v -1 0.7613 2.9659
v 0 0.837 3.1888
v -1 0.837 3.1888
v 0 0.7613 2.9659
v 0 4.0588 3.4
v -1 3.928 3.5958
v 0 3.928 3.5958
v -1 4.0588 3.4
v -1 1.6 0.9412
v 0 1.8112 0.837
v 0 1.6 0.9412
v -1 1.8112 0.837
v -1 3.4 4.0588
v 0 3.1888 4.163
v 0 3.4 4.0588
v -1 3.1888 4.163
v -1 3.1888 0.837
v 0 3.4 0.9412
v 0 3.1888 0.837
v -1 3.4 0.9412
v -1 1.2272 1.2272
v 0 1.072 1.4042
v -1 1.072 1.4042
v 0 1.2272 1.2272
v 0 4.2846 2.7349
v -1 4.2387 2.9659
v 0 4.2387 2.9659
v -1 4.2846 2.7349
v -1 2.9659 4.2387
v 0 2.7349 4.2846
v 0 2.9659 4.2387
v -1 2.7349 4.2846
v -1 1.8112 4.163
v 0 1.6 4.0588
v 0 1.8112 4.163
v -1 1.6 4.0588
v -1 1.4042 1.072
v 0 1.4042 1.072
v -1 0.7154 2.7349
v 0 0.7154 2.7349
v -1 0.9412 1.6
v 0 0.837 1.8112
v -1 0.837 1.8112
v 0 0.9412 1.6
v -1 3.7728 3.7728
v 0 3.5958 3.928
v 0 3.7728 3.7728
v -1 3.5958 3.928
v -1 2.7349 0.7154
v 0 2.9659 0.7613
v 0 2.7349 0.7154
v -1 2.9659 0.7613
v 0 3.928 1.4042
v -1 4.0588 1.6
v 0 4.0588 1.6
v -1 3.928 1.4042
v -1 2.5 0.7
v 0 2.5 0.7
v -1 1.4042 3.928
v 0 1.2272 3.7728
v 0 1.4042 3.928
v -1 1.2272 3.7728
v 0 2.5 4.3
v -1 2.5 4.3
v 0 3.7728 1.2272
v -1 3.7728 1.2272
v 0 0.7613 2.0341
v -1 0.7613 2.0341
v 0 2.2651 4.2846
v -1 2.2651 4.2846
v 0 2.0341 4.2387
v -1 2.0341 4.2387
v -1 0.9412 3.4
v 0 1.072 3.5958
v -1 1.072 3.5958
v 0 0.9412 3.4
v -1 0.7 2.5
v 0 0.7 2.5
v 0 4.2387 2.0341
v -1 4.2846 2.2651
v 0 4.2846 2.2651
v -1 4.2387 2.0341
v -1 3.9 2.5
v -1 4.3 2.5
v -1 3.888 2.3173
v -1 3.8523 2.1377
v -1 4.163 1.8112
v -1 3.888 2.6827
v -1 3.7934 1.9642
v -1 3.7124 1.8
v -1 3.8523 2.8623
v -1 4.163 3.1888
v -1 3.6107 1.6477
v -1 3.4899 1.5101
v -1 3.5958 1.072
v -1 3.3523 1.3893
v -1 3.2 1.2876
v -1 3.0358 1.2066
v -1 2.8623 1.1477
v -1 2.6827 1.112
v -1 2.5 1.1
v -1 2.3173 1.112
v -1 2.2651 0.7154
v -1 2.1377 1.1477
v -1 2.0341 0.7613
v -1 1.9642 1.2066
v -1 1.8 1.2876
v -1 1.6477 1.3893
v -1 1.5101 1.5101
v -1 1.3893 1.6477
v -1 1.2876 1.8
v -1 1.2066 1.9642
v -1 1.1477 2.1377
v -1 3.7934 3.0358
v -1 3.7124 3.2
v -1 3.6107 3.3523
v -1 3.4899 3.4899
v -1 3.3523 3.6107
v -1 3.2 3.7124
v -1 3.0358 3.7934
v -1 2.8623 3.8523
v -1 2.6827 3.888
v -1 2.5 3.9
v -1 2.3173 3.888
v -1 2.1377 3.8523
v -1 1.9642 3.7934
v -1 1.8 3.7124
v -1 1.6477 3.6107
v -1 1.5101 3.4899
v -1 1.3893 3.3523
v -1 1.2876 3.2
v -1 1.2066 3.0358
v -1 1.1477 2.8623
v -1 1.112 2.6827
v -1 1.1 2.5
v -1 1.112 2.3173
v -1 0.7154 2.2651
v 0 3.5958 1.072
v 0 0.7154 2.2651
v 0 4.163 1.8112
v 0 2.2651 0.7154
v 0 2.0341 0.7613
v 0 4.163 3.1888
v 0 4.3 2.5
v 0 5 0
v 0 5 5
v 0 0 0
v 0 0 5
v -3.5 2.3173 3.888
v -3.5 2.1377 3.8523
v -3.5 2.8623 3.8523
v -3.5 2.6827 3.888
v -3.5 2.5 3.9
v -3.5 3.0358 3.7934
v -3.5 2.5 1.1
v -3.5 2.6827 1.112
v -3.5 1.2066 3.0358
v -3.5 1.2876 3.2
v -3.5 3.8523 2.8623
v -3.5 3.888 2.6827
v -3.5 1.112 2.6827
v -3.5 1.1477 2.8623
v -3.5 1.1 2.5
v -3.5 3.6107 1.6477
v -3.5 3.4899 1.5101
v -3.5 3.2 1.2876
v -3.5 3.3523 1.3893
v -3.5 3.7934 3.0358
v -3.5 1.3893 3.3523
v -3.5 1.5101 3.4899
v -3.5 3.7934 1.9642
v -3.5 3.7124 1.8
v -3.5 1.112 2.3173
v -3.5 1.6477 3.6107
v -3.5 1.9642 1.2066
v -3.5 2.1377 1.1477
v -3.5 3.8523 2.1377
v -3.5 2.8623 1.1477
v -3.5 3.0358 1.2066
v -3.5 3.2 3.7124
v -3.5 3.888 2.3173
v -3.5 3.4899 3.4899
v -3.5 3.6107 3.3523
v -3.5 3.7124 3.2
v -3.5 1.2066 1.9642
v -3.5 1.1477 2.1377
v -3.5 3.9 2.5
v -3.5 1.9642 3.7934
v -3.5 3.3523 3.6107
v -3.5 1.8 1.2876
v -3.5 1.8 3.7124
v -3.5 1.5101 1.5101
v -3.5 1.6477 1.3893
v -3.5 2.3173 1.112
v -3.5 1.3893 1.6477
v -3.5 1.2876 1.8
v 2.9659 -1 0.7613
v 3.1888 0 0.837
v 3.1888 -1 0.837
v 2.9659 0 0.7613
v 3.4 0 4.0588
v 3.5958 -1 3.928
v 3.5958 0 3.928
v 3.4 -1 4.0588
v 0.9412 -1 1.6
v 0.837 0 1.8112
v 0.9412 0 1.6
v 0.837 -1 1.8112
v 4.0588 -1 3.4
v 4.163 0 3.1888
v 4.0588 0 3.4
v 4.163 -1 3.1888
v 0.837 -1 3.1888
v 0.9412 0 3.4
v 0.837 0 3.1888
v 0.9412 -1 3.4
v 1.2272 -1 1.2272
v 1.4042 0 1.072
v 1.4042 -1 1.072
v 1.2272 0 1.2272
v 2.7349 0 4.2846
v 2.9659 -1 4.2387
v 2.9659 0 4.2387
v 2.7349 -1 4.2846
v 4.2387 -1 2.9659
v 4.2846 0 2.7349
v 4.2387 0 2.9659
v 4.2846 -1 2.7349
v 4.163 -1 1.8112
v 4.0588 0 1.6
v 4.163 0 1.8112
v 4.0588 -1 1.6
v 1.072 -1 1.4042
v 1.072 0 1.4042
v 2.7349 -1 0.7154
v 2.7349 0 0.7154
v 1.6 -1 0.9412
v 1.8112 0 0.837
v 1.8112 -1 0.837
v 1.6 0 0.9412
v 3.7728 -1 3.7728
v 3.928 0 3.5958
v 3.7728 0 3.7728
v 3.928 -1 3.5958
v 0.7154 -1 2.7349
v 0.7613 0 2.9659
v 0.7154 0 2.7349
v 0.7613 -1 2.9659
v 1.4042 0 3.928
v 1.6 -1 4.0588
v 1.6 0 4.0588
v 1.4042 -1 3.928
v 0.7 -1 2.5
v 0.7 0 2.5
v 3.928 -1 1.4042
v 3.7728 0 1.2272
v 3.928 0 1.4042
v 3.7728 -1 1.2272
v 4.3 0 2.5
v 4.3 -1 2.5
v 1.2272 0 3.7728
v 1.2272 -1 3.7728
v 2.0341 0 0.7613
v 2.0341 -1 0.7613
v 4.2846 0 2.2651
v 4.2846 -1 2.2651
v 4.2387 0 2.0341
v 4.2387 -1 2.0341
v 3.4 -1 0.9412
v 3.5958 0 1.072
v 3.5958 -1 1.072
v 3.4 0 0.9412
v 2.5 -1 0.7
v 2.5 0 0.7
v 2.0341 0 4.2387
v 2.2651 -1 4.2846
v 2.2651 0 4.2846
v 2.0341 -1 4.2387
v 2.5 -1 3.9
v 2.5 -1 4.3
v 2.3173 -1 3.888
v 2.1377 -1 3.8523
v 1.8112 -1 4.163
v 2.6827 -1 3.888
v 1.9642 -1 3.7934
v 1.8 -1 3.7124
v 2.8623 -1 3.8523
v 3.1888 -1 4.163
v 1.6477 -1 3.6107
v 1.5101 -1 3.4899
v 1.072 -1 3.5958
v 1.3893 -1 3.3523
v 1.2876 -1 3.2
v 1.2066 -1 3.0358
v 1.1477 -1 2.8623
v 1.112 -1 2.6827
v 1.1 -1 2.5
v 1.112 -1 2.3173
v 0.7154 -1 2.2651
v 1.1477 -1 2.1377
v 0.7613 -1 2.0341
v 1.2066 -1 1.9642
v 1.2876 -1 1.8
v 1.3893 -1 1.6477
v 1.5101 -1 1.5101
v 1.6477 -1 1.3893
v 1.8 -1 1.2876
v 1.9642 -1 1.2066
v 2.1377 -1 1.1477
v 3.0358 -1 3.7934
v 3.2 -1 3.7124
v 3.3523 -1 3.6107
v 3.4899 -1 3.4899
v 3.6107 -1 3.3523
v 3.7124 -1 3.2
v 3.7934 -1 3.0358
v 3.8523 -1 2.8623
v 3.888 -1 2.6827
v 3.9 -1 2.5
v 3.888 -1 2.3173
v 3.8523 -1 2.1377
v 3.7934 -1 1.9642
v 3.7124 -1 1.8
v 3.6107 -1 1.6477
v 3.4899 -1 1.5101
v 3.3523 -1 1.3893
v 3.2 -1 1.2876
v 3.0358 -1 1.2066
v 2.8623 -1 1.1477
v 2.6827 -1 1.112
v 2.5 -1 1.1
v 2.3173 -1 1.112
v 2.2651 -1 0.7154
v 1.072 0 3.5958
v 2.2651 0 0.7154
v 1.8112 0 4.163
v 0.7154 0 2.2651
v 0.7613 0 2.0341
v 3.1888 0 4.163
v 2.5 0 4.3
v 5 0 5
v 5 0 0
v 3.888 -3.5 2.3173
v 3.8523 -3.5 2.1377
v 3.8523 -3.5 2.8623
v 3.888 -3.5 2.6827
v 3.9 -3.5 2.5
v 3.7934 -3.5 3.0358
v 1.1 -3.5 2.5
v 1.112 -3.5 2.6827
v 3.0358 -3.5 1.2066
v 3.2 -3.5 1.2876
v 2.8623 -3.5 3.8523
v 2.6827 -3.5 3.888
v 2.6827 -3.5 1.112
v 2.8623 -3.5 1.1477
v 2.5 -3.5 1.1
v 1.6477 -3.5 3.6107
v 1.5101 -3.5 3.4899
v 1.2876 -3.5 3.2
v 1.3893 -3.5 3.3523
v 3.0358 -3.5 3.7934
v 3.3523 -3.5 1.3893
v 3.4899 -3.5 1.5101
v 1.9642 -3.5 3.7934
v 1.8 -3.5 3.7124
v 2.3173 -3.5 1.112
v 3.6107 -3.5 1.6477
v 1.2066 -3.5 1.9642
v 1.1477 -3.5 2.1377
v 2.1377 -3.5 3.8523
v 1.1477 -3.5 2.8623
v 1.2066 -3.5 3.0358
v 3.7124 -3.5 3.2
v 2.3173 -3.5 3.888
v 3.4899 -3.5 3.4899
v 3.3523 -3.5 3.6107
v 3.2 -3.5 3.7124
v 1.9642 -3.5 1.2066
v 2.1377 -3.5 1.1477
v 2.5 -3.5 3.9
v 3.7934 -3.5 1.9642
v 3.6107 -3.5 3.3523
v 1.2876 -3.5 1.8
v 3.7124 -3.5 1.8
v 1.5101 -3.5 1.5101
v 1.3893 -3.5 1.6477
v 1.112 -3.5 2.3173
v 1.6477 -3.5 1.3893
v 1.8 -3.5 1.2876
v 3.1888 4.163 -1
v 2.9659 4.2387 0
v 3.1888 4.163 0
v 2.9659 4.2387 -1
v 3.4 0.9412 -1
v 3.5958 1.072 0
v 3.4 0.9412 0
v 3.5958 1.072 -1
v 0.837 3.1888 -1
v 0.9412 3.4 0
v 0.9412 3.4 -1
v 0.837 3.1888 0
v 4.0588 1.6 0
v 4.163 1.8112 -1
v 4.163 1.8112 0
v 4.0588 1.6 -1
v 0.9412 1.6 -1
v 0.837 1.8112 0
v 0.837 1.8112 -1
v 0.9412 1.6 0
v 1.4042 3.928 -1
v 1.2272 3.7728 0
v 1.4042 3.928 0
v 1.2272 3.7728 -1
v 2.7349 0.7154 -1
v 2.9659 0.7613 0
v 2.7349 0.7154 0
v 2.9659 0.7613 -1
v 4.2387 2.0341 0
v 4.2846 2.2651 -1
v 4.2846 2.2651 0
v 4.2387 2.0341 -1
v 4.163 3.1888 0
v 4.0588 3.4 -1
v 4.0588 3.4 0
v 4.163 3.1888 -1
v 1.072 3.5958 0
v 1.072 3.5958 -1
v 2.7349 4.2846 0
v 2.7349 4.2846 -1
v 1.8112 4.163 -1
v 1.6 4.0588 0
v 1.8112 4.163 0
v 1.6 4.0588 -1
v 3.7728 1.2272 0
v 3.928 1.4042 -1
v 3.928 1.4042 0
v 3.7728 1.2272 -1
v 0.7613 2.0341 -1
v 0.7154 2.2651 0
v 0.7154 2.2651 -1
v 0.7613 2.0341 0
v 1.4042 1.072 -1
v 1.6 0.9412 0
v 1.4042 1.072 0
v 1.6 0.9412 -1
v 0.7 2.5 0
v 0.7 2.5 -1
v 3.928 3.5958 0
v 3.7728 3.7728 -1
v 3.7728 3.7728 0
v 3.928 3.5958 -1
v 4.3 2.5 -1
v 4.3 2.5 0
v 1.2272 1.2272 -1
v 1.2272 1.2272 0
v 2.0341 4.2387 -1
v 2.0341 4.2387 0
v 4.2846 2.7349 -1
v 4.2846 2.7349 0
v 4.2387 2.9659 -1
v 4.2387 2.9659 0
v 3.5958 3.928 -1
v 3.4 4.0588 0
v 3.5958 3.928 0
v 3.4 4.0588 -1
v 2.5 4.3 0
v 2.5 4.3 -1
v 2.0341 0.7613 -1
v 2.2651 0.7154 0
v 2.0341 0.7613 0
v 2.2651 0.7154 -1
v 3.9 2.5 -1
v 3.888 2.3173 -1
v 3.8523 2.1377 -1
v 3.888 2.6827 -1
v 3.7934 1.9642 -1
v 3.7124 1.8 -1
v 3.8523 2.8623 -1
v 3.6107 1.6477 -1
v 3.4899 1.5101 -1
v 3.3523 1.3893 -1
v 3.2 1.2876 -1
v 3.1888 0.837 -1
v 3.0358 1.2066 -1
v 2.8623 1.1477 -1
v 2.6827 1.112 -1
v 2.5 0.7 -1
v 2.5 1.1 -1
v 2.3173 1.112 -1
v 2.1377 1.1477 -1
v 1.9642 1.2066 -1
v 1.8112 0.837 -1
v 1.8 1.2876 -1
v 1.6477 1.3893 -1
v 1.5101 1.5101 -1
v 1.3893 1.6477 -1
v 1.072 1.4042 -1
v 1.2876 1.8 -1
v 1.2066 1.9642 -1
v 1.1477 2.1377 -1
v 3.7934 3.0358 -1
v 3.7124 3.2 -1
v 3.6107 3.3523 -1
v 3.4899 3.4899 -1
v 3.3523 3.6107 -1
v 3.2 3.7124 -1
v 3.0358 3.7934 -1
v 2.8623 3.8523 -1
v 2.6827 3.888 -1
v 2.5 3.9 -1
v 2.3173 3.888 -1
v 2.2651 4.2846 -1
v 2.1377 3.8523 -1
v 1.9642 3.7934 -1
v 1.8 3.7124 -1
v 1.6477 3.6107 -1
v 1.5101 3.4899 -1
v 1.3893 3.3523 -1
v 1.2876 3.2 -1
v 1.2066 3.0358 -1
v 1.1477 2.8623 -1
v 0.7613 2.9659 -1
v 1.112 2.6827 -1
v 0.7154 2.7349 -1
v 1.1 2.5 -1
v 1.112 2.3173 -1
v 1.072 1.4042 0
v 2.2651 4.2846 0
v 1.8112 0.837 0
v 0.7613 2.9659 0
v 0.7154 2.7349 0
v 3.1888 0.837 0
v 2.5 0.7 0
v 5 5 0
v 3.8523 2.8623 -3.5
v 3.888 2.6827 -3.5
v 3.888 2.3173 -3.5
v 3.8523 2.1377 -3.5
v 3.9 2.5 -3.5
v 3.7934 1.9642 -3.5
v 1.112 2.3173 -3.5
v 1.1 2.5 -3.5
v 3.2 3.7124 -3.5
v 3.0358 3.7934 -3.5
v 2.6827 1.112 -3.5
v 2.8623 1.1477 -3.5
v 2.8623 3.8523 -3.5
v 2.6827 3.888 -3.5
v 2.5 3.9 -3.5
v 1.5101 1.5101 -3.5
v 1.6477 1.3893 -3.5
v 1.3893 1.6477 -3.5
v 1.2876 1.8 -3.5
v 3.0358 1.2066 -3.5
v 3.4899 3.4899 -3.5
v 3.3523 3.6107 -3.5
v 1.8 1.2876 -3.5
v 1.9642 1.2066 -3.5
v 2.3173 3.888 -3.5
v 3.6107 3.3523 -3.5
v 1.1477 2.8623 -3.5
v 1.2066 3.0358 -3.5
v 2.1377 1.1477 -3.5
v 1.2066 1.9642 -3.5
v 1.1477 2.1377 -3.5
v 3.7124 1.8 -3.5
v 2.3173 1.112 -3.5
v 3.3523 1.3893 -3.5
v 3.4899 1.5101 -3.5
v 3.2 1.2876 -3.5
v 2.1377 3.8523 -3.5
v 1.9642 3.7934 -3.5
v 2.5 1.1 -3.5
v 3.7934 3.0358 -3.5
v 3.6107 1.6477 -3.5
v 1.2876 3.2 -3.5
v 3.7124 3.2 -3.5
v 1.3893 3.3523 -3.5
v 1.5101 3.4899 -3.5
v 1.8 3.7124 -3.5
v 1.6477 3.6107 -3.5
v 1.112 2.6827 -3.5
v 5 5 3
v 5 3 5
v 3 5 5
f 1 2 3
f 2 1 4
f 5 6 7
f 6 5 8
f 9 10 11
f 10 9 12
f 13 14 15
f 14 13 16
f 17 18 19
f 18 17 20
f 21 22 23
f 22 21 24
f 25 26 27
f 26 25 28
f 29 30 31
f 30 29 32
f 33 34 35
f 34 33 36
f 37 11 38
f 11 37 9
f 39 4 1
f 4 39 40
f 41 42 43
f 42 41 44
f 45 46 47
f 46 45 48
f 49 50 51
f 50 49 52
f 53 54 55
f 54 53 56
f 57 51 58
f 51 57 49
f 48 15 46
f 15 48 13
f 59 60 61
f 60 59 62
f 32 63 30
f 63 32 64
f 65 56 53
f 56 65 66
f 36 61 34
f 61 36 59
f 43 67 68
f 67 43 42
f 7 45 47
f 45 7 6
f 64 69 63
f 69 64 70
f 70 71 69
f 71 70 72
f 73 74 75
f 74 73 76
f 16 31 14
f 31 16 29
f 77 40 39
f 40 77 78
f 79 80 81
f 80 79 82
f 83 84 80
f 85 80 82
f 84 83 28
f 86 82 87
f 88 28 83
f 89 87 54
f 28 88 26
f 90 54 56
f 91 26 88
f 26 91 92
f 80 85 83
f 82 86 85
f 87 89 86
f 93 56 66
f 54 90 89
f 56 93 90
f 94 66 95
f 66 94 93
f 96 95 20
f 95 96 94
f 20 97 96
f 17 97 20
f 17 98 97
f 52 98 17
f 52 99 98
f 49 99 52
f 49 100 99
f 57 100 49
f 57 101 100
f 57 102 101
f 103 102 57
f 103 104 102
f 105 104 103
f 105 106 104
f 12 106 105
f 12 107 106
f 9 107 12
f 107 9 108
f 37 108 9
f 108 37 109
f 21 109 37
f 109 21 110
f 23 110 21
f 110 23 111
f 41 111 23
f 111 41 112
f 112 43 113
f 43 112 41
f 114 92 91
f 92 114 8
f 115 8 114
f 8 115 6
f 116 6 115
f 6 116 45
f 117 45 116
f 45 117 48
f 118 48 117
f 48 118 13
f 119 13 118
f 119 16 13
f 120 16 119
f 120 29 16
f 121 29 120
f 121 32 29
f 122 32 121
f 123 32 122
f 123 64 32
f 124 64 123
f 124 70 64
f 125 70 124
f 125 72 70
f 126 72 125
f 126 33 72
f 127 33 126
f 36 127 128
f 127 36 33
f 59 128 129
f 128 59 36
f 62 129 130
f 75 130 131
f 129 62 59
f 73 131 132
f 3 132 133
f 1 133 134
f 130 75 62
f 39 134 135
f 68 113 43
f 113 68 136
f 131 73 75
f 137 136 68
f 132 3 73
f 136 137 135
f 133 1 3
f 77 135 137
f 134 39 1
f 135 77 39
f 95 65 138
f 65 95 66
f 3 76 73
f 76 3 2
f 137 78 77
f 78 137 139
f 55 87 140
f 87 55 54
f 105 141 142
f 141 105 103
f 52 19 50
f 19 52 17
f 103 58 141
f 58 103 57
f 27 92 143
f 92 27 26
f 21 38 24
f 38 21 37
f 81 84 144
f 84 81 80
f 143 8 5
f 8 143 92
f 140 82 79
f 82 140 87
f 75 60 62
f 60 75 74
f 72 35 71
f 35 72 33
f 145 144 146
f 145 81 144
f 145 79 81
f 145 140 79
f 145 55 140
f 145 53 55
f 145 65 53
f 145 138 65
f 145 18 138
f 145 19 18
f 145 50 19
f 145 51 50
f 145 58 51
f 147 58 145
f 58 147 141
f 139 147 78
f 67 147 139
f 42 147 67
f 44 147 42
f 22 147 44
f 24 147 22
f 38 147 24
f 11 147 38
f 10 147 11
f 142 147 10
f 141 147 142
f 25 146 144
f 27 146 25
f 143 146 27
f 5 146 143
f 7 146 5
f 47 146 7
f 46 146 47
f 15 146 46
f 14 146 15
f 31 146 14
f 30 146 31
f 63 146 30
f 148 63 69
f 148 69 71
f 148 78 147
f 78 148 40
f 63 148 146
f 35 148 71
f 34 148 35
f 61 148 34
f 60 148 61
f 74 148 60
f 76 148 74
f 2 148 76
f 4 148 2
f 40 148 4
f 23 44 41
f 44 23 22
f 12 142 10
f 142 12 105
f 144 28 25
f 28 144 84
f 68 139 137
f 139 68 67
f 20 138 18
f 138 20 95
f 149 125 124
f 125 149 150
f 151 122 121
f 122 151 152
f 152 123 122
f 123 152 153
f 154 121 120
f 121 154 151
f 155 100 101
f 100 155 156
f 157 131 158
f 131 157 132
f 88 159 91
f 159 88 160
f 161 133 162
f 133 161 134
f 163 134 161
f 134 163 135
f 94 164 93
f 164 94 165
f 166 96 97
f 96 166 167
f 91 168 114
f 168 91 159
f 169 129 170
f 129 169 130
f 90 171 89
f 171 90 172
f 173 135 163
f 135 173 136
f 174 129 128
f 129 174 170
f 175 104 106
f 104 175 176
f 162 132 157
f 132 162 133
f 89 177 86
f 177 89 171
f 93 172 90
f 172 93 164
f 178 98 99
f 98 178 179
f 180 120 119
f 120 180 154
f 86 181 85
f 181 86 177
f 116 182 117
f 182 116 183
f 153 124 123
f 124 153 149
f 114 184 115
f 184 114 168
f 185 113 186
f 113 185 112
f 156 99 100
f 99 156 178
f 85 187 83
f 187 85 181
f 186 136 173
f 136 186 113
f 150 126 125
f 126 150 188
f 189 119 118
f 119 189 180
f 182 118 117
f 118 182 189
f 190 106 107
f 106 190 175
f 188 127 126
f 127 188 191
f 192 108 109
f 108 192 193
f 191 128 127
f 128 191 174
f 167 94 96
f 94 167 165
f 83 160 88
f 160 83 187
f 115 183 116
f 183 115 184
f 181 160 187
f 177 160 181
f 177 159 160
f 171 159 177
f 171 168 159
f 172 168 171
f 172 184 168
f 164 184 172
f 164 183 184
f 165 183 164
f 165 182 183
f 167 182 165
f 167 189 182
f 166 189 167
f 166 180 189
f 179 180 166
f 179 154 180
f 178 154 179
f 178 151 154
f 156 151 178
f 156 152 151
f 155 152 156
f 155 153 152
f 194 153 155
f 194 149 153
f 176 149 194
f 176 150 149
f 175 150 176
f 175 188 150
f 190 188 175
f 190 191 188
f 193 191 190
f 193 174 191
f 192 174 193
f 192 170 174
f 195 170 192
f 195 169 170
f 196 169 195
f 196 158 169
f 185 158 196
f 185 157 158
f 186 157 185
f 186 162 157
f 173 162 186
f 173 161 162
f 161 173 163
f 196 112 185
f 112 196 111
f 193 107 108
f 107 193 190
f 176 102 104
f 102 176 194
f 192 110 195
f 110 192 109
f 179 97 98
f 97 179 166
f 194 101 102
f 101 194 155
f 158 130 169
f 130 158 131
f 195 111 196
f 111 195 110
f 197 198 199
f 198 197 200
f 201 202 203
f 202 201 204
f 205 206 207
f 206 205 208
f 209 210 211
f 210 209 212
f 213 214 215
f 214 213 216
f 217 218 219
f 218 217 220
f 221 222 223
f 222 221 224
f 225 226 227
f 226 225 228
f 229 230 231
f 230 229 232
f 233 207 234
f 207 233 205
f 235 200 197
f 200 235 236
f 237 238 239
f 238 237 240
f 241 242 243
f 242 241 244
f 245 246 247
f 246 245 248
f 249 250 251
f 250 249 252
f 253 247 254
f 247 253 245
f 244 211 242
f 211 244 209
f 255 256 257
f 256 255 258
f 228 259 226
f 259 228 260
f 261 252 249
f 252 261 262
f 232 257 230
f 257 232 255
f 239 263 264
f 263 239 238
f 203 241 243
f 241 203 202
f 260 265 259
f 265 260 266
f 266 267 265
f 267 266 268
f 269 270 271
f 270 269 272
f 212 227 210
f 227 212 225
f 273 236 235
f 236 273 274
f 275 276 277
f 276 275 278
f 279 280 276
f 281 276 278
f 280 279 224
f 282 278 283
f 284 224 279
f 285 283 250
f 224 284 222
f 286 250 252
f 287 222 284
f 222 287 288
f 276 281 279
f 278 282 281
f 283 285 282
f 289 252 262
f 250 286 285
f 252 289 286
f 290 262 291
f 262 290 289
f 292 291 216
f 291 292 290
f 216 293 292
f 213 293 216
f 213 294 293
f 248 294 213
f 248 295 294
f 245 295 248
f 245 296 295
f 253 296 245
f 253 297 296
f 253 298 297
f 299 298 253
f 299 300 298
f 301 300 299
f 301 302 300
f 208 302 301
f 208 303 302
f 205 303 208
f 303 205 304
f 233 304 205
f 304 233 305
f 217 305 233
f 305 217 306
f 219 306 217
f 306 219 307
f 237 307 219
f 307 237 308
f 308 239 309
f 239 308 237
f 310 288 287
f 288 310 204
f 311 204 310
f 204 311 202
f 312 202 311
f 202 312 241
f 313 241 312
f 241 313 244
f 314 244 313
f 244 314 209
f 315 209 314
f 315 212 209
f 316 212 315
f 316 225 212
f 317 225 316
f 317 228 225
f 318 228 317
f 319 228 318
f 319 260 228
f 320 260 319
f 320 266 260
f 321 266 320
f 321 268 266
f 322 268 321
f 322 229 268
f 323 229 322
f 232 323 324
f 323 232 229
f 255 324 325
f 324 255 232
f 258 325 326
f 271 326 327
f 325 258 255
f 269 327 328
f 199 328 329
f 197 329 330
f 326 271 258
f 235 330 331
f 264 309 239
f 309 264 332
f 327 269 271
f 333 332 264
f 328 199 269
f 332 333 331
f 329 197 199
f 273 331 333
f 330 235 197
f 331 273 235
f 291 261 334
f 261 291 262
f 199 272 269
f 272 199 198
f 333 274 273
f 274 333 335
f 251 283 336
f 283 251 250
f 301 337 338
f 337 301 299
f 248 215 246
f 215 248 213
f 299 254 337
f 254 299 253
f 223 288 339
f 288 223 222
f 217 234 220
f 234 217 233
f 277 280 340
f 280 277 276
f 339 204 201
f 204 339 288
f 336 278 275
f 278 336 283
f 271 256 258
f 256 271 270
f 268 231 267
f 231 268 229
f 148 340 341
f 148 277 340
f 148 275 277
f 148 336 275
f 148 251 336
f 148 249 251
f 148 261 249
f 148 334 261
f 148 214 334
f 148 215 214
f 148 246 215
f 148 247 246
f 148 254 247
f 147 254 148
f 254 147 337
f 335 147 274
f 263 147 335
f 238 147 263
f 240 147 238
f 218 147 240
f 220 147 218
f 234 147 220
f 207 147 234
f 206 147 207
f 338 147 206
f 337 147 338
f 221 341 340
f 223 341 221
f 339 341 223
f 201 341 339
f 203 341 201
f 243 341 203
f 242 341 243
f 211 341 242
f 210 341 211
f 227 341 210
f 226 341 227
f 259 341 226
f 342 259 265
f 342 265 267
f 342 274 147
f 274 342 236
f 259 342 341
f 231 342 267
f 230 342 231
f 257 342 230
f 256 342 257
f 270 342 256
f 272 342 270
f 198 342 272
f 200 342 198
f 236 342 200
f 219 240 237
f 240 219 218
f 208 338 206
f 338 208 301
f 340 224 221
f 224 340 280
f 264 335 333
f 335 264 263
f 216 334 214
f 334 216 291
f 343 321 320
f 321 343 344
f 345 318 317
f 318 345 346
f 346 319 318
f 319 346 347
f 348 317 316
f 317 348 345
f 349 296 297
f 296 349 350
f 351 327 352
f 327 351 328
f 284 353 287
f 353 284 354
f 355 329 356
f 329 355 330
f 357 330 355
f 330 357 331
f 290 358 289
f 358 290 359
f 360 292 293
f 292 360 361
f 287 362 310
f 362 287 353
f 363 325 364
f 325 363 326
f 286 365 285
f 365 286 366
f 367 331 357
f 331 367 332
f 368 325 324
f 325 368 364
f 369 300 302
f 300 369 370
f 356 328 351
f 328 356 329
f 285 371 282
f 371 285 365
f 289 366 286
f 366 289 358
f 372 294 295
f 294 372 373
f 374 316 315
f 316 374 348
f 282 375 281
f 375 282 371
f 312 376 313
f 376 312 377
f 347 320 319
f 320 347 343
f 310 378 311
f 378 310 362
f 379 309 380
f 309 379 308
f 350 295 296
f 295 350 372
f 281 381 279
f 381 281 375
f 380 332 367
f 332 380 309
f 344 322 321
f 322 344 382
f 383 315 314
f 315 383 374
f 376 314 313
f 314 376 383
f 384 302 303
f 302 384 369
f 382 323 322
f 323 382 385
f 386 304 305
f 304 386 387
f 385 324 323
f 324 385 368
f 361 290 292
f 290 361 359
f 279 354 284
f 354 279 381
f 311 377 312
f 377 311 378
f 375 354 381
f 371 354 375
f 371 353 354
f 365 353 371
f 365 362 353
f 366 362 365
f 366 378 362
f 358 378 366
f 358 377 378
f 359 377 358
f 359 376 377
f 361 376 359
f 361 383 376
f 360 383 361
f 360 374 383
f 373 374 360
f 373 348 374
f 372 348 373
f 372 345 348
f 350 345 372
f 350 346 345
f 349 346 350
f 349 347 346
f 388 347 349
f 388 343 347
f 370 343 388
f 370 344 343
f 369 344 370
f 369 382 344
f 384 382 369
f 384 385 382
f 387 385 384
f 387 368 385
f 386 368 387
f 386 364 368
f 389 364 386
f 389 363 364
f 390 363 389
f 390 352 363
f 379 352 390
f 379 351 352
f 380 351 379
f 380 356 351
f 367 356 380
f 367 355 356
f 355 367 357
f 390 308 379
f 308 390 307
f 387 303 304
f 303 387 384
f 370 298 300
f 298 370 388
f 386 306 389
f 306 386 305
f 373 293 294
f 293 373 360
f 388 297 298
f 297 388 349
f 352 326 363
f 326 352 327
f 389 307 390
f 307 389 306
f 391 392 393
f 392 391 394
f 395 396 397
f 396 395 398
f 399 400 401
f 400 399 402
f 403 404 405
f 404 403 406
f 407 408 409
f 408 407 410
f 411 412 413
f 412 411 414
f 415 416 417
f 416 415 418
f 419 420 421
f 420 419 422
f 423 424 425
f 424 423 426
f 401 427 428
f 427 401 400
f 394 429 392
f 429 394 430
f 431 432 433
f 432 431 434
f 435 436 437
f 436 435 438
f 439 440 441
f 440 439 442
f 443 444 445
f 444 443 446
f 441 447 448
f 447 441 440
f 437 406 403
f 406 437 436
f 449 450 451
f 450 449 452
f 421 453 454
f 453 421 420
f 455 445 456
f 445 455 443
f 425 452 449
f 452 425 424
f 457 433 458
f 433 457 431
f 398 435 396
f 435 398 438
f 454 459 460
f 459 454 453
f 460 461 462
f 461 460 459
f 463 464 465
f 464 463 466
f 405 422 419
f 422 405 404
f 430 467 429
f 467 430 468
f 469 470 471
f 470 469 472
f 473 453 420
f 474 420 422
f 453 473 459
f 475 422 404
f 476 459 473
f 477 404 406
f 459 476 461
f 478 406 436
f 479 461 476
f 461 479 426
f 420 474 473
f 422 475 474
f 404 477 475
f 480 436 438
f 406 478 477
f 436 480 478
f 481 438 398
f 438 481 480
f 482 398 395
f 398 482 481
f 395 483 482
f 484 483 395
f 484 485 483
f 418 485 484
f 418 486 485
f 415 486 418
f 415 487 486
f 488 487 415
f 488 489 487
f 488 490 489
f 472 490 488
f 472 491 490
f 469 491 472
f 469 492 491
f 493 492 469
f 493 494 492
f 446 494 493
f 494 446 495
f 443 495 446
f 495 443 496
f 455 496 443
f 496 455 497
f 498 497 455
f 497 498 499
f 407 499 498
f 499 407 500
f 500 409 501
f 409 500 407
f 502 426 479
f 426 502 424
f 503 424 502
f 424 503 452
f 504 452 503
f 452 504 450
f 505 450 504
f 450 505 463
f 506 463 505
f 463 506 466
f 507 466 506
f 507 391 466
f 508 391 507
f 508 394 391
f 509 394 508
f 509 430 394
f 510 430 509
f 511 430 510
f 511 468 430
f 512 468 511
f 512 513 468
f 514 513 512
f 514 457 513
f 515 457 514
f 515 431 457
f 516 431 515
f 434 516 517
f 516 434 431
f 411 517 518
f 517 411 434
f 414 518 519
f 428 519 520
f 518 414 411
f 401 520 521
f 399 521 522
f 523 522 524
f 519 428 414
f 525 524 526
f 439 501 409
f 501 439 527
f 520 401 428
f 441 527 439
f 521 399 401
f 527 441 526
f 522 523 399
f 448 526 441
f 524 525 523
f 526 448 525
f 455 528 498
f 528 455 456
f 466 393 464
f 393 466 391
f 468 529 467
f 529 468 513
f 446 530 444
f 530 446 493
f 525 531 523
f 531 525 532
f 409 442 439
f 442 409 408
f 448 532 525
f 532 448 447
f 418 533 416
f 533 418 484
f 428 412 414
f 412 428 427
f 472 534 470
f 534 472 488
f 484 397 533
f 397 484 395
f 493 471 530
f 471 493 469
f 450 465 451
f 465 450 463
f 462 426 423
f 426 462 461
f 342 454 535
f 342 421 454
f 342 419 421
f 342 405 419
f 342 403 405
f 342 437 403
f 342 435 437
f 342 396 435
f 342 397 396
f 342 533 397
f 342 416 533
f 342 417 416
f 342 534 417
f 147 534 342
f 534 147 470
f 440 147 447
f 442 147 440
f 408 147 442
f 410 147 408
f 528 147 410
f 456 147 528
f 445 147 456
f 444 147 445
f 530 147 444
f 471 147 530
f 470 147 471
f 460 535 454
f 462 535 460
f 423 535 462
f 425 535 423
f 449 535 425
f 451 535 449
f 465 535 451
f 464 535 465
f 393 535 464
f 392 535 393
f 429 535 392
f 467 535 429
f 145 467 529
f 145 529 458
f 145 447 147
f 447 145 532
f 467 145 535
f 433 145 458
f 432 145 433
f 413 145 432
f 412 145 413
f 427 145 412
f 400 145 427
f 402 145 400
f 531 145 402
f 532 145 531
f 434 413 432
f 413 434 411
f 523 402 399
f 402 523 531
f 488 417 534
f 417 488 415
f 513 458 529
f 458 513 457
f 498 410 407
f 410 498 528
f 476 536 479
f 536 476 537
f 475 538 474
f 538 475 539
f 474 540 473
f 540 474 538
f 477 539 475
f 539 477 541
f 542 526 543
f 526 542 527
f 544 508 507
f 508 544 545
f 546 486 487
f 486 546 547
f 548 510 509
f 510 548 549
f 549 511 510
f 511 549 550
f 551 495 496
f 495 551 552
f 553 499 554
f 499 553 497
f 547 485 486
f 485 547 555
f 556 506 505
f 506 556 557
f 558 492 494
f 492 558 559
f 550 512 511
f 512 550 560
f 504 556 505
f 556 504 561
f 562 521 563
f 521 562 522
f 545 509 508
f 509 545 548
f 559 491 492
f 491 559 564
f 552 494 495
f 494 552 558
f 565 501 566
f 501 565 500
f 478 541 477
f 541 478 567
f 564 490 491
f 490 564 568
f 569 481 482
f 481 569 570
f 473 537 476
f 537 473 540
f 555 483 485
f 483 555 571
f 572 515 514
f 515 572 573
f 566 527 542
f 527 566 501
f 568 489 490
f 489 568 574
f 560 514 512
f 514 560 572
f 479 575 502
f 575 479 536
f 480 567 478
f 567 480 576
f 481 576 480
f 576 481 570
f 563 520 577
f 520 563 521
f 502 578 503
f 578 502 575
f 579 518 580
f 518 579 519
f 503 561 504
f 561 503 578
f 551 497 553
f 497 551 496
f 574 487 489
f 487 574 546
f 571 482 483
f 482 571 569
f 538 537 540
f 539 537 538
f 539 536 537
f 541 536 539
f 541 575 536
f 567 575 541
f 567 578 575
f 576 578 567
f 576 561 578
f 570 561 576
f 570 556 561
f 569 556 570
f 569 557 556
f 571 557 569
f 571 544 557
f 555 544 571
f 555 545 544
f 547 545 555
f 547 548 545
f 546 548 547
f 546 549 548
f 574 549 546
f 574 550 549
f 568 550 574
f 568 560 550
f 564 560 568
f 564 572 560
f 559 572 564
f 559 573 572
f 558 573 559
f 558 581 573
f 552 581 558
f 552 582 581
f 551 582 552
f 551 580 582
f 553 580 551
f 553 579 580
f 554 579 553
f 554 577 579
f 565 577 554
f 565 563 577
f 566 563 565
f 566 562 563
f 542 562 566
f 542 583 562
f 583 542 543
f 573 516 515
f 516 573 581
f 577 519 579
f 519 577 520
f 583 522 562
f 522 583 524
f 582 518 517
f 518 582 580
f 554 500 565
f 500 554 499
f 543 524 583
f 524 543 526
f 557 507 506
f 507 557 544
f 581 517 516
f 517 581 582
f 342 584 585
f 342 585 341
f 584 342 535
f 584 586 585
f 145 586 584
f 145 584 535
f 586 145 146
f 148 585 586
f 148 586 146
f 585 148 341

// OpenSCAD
// ============================================================
// VERTEX — Design System 3D Modular
// ============================================================
// Quina 3-vias com ponta arredondada. Une as 3 peças que
// convergem num vértice (ex: base + 2 paredes de uma caixa,
// ou 3 vigas CORNER/PIN nas arestas).
//
//            ╭────╮  ← ponta externa ARREDONDADA
//          ╱      │
//         │  cubo │ ←  corpo 5×5×5
//         │ 5×5×5 │
//    -X ← ┤       ├
//         └───┬───┘
//        -Y ↙  ↓ -Z    ← 3 faces internas com pino/furo
//
// Faces internas: X=0 (aponta -X), Y=0 (-Y), Z=0 (-Z) — cada
// uma com pino/furo no CENTRO da face (sec/2 = 2.5mm), que
// alinha com o canal axial das vigas E com os furos de borda
// no canto de uma PLATE.
//
// Ponta externa (+X,+Y,+Z) arredondada com raio r_tip.
//
// Com 2+ faces em "hole", os furos se encontram no centro do
// cubo (profundidade 4 > 2.5) — fio vira a esquina por dentro.
//
// Parâmetros:
// - sec              : lado do cubo (= thickness da PLATE)
// - face_x/_y/_z     : "pin", "hole" ou "none" por face
// - r_tip            : raio do arredondamento da ponta externa
// - edge_*           : interface de borda (igual ao sistema)
// ============================================================

/* [Faces internas] */

// Face X=0 (aponta -X)
face_x = "pin"; // [pin, hole, none]

// Face Y=0 (aponta -Y)
face_y = "pin"; // [pin, hole, none]

// Face Z=0 (aponta -Z)
face_z = "pin"; // [pin, hole, none]

/* [Tamanho] */

// Lado do cubo (= thickness da PLATE / seção do CORNER)
sec = 5; // [3:0.5:20]

/* [Bordas] */

// Raio do acabamento da ponta externa (padrão do sistema)
border_radius = 2; // [0:0.25:5]

// Estilo do acabamento: round (esfera) ou chamfer (facetado reto)
border_style = "round"; // [round, chamfer]

/* [Interface de borda — manter igual à PLATE/ATOM] */

// Diâmetro do furo de borda (mm)
edge_hole_d = 3; // [1:0.1:5]

// Profundidade do furo de borda (mm)
edge_hole_depth = 4; // [1:0.5:10]

// Comprimento total do pino (colar + haste)
edge_pin_len = 3.5; // [1:0.25:9]

// Largura radial do rebaixo/colar (0 = desativado)
edge_collar_w = 0.4; // [0:0.1:1]

// Profundidade do rebaixo / altura do colar (mm)
edge_collar_depth = 1; // [0.5:0.25:2]

/* [Tolerância de impressão] */

// Folga de encaixe
tolerance = 0.2; // [0:0.05:0.5]

/* [Qualidade] */
$fn = 48;

// ============================================================
// CALCULADOS
// ============================================================

edge_pin_d = edge_hole_d - tolerance;
collar_d   = edge_hole_d + 2 * edge_collar_w - tolerance;
recess_d   = edge_hole_d + 2 * edge_collar_w;

// Centro das faces
c = sec / 2;

// Raio seguro da ponta
safe_tip = min(border_radius, sec / 2 - 0.01);

// ============================================================
// MÓDULOS
// ============================================================

// Pino com colar na raiz — orientado em +Z a partir da origem
module edge_pin() {
    if (edge_collar_w > 0)
        cylinder(d = collar_d, h = edge_collar_depth);
    cylinder(d = edge_pin_d, h = edge_pin_len);
}

// Furo com rebaixo do colar — fura em -Z a partir da superfície
module edge_hole_cut() {
    eps = 0.01;
    rotate([180, 0, 0]) {
        cylinder(d = edge_hole_d, h = edge_hole_depth + eps);
        if (edge_collar_w > 0)
            cylinder(d = recess_d, h = edge_collar_depth + eps);
    }
}

// ------------------------------------------------------------
// Módulo: sólido de acabamento da ponta — esfera (round) ou
// octaedro (chamfer: facetas retas 45°)
// ------------------------------------------------------------
module border_finish(r) {
    if (border_style == "chamfer")
        polyhedron(
            points = [[r,0,0],[-r,0,0],[0,r,0],[0,-r,0],[0,0,r],[0,0,-r]],
            faces  = [[4,2,0],[4,1,2],[4,3,1],[4,0,3],[5,0,2],[5,2,1],[5,1,3],[5,3,0]]
        );
    else
        sphere(r = r);
}

// ------------------------------------------------------------
// Módulo: corpo do vertex — cubo com a ponta (+X,+Y,+Z)
// acabada. Hull de 3 lajes (que preservam as faces internas
// planas) + sólido de acabamento no canto externo.
// border_radius = 0 → cubo de ponta viva.
// ------------------------------------------------------------
module vertex_body() {
    if (safe_tip <= 0) {
        cube([sec, sec, sec]);
    } else {
        hull() {
            cube([sec - safe_tip, sec, sec]);
            cube([sec, sec - safe_tip, sec]);
            cube([sec, sec, sec - safe_tip]);
            translate([sec - safe_tip, sec - safe_tip, sec - safe_tip])
                border_finish(safe_tip);
        }
    }
}

// ------------------------------------------------------------
// Módulo: VERTEX completo
// ------------------------------------------------------------
module vertex() {
    difference() {
        union() {
            vertex_body();

            // Pinos nas faces internas
            if (face_x == "pin")
                translate([0, c, c]) rotate([0, -90, 0]) edge_pin();
            if (face_y == "pin")
                translate([c, 0, c]) rotate([90, 0, 0]) edge_pin();
            if (face_z == "pin")
                translate([c, c, 0]) rotate([180, 0, 0]) edge_pin();
        }

        // Furos nas faces internas (se cruzam no centro — fio
        // vira a esquina por dentro quando 2+ faces são furo)
        if (face_x == "hole")
            translate([0, c, c]) rotate([0, 90, 0]) rotate([180, 0, 0]) edge_hole_cut();
        if (face_y == "hole")
            translate([c, 0, c]) rotate([-90, 0, 0]) rotate([180, 0, 0]) edge_hole_cut();
        if (face_z == "hole")
            translate([c, c, 0]) rotate([180, 0, 0]) edge_hole_cut();
    }
}

// ============================================================
// RENDER
// ============================================================
part_color = [0.35, 0.38, 0.42];
color(part_color) vertex();

// ============================================================
// INFO — dimensões no console
// ============================================================
echo("=== VERTEX ===");
echo(str("Cubo               : ", sec, " × ", sec, " × ", sec, "mm, ponta r=", safe_tip, "mm (", border_style, ")"));
echo(str("Faces              : X=", face_x, " Y=", face_y, " Z=", face_z));
echo(str("Pino               : Ø", edge_pin_d, "mm × ", edge_pin_len, "mm + colar Ø", collar_d, "mm × ", edge_collar_depth, "mm"));
echo(str("Furo               : Ø", edge_hole_d, "mm × ", edge_hole_depth, "mm + rebaixo Ø", recess_d, "mm × ", edge_collar_depth, "mm"));
echo(str("Tolerância         : ", tolerance, "mm"));
echo("---");
echo(str("Feature no centro da face (alinha com canal/furo de borda): ", c == sec / 2 ? "SIM" : "VERIFICAR"));
